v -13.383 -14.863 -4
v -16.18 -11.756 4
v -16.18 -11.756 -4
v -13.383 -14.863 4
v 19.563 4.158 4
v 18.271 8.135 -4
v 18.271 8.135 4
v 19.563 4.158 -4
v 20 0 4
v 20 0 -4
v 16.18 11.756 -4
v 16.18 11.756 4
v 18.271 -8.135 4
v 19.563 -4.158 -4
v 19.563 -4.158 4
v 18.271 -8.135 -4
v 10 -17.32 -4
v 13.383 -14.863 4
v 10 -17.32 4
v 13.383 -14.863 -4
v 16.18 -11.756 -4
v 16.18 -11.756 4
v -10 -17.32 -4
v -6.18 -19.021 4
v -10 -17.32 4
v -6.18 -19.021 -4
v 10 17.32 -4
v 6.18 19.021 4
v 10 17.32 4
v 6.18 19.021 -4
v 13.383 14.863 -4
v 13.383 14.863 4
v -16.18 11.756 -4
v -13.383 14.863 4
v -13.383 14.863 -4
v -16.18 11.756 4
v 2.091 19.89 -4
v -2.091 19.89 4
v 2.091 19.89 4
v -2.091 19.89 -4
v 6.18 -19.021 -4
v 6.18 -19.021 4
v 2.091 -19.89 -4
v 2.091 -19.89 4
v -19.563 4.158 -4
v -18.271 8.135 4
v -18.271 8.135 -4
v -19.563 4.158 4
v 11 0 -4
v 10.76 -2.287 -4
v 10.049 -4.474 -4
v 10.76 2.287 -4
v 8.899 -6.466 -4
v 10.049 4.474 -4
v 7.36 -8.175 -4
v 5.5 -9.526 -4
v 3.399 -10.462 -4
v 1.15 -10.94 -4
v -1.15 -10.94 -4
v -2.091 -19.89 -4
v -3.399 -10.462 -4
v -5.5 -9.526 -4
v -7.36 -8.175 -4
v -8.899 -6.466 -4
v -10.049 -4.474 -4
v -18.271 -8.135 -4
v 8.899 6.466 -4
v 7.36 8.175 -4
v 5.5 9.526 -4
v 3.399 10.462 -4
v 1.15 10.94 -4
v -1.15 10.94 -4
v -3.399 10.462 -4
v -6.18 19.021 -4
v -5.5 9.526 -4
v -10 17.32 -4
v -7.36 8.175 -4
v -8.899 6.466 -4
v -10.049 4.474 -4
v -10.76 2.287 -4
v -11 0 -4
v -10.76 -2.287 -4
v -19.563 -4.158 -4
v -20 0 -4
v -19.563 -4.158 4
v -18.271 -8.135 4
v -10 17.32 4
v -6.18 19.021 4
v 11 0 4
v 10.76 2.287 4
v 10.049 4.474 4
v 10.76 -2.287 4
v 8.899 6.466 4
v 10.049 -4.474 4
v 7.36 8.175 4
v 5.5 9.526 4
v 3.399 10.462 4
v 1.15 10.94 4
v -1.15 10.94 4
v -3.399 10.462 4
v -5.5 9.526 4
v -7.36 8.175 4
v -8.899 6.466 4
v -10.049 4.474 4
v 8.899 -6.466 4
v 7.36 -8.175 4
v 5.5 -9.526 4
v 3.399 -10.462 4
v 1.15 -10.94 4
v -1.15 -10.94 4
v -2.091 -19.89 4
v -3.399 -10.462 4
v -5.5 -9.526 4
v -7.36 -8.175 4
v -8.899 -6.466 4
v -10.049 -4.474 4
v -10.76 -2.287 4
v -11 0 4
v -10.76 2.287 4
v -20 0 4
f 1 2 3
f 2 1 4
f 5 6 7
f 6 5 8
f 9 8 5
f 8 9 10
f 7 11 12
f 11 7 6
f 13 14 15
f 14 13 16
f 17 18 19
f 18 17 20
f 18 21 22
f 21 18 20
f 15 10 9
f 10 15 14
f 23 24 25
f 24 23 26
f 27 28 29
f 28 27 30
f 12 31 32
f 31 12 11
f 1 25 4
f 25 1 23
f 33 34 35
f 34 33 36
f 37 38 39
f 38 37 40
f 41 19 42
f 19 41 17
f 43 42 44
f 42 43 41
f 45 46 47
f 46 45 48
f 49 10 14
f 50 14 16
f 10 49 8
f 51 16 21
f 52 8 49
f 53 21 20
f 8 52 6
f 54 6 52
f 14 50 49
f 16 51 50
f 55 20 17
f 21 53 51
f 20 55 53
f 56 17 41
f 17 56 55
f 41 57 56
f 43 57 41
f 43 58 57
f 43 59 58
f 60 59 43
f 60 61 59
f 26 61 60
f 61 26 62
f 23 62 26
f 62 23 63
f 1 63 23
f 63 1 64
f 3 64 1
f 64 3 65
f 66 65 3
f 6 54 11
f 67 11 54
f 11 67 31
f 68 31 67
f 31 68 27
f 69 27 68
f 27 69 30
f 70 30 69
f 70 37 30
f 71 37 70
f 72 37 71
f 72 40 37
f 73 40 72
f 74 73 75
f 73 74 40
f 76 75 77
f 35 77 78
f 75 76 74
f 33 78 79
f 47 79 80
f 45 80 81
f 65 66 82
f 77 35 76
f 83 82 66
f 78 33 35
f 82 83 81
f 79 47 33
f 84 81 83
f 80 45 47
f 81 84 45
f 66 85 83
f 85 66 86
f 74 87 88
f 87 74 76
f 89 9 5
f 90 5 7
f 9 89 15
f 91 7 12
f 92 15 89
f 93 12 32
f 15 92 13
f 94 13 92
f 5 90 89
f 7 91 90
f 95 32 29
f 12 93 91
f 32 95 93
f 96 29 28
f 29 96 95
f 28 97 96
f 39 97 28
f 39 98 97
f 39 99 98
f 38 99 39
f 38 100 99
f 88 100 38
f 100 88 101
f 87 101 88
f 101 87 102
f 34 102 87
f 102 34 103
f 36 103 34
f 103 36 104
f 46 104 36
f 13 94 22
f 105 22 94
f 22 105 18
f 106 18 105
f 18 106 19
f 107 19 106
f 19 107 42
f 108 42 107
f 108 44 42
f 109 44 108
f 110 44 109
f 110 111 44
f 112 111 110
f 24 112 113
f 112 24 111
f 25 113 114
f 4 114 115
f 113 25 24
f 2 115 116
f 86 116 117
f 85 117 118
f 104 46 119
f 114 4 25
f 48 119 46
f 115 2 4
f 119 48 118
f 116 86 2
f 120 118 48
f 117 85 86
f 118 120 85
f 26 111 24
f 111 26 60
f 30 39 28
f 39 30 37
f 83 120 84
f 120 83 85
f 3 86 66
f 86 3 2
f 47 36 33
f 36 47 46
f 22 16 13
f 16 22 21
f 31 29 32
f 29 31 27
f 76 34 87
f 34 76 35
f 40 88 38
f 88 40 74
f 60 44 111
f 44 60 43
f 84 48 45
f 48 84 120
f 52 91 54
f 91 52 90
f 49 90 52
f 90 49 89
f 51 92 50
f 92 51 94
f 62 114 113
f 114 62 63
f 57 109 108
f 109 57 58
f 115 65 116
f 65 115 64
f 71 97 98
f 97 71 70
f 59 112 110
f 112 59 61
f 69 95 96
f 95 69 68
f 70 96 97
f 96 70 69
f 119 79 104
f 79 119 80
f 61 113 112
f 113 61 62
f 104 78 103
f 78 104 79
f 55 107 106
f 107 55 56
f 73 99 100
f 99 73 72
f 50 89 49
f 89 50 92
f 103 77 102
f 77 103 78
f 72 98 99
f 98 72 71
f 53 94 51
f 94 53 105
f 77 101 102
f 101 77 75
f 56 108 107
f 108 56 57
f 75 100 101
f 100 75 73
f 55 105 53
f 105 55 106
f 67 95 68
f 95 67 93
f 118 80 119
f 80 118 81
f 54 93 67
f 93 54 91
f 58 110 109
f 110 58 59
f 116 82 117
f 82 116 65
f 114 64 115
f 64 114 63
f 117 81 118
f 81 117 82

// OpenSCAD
// Parameters for the spacer ring
ring_outer_diameter = 40; // Outer diameter of the ring
ring_inner_diameter = 22; // Adjusted inner diameter (hollow center) to increase size
ring_thickness = 8;       // Adjusted thickness of the ring to reduce profile

// Spacer ring generation
difference() {
    // Outer cylinder (main body of the ring)
    cylinder(h = ring_thickness, d = ring_outer_diameter, center = true);
    
    // Inner cylinder (hollow center)
    cylinder(h = ring_thickness + 1, d = ring_inner_diameter, center = true);
}
